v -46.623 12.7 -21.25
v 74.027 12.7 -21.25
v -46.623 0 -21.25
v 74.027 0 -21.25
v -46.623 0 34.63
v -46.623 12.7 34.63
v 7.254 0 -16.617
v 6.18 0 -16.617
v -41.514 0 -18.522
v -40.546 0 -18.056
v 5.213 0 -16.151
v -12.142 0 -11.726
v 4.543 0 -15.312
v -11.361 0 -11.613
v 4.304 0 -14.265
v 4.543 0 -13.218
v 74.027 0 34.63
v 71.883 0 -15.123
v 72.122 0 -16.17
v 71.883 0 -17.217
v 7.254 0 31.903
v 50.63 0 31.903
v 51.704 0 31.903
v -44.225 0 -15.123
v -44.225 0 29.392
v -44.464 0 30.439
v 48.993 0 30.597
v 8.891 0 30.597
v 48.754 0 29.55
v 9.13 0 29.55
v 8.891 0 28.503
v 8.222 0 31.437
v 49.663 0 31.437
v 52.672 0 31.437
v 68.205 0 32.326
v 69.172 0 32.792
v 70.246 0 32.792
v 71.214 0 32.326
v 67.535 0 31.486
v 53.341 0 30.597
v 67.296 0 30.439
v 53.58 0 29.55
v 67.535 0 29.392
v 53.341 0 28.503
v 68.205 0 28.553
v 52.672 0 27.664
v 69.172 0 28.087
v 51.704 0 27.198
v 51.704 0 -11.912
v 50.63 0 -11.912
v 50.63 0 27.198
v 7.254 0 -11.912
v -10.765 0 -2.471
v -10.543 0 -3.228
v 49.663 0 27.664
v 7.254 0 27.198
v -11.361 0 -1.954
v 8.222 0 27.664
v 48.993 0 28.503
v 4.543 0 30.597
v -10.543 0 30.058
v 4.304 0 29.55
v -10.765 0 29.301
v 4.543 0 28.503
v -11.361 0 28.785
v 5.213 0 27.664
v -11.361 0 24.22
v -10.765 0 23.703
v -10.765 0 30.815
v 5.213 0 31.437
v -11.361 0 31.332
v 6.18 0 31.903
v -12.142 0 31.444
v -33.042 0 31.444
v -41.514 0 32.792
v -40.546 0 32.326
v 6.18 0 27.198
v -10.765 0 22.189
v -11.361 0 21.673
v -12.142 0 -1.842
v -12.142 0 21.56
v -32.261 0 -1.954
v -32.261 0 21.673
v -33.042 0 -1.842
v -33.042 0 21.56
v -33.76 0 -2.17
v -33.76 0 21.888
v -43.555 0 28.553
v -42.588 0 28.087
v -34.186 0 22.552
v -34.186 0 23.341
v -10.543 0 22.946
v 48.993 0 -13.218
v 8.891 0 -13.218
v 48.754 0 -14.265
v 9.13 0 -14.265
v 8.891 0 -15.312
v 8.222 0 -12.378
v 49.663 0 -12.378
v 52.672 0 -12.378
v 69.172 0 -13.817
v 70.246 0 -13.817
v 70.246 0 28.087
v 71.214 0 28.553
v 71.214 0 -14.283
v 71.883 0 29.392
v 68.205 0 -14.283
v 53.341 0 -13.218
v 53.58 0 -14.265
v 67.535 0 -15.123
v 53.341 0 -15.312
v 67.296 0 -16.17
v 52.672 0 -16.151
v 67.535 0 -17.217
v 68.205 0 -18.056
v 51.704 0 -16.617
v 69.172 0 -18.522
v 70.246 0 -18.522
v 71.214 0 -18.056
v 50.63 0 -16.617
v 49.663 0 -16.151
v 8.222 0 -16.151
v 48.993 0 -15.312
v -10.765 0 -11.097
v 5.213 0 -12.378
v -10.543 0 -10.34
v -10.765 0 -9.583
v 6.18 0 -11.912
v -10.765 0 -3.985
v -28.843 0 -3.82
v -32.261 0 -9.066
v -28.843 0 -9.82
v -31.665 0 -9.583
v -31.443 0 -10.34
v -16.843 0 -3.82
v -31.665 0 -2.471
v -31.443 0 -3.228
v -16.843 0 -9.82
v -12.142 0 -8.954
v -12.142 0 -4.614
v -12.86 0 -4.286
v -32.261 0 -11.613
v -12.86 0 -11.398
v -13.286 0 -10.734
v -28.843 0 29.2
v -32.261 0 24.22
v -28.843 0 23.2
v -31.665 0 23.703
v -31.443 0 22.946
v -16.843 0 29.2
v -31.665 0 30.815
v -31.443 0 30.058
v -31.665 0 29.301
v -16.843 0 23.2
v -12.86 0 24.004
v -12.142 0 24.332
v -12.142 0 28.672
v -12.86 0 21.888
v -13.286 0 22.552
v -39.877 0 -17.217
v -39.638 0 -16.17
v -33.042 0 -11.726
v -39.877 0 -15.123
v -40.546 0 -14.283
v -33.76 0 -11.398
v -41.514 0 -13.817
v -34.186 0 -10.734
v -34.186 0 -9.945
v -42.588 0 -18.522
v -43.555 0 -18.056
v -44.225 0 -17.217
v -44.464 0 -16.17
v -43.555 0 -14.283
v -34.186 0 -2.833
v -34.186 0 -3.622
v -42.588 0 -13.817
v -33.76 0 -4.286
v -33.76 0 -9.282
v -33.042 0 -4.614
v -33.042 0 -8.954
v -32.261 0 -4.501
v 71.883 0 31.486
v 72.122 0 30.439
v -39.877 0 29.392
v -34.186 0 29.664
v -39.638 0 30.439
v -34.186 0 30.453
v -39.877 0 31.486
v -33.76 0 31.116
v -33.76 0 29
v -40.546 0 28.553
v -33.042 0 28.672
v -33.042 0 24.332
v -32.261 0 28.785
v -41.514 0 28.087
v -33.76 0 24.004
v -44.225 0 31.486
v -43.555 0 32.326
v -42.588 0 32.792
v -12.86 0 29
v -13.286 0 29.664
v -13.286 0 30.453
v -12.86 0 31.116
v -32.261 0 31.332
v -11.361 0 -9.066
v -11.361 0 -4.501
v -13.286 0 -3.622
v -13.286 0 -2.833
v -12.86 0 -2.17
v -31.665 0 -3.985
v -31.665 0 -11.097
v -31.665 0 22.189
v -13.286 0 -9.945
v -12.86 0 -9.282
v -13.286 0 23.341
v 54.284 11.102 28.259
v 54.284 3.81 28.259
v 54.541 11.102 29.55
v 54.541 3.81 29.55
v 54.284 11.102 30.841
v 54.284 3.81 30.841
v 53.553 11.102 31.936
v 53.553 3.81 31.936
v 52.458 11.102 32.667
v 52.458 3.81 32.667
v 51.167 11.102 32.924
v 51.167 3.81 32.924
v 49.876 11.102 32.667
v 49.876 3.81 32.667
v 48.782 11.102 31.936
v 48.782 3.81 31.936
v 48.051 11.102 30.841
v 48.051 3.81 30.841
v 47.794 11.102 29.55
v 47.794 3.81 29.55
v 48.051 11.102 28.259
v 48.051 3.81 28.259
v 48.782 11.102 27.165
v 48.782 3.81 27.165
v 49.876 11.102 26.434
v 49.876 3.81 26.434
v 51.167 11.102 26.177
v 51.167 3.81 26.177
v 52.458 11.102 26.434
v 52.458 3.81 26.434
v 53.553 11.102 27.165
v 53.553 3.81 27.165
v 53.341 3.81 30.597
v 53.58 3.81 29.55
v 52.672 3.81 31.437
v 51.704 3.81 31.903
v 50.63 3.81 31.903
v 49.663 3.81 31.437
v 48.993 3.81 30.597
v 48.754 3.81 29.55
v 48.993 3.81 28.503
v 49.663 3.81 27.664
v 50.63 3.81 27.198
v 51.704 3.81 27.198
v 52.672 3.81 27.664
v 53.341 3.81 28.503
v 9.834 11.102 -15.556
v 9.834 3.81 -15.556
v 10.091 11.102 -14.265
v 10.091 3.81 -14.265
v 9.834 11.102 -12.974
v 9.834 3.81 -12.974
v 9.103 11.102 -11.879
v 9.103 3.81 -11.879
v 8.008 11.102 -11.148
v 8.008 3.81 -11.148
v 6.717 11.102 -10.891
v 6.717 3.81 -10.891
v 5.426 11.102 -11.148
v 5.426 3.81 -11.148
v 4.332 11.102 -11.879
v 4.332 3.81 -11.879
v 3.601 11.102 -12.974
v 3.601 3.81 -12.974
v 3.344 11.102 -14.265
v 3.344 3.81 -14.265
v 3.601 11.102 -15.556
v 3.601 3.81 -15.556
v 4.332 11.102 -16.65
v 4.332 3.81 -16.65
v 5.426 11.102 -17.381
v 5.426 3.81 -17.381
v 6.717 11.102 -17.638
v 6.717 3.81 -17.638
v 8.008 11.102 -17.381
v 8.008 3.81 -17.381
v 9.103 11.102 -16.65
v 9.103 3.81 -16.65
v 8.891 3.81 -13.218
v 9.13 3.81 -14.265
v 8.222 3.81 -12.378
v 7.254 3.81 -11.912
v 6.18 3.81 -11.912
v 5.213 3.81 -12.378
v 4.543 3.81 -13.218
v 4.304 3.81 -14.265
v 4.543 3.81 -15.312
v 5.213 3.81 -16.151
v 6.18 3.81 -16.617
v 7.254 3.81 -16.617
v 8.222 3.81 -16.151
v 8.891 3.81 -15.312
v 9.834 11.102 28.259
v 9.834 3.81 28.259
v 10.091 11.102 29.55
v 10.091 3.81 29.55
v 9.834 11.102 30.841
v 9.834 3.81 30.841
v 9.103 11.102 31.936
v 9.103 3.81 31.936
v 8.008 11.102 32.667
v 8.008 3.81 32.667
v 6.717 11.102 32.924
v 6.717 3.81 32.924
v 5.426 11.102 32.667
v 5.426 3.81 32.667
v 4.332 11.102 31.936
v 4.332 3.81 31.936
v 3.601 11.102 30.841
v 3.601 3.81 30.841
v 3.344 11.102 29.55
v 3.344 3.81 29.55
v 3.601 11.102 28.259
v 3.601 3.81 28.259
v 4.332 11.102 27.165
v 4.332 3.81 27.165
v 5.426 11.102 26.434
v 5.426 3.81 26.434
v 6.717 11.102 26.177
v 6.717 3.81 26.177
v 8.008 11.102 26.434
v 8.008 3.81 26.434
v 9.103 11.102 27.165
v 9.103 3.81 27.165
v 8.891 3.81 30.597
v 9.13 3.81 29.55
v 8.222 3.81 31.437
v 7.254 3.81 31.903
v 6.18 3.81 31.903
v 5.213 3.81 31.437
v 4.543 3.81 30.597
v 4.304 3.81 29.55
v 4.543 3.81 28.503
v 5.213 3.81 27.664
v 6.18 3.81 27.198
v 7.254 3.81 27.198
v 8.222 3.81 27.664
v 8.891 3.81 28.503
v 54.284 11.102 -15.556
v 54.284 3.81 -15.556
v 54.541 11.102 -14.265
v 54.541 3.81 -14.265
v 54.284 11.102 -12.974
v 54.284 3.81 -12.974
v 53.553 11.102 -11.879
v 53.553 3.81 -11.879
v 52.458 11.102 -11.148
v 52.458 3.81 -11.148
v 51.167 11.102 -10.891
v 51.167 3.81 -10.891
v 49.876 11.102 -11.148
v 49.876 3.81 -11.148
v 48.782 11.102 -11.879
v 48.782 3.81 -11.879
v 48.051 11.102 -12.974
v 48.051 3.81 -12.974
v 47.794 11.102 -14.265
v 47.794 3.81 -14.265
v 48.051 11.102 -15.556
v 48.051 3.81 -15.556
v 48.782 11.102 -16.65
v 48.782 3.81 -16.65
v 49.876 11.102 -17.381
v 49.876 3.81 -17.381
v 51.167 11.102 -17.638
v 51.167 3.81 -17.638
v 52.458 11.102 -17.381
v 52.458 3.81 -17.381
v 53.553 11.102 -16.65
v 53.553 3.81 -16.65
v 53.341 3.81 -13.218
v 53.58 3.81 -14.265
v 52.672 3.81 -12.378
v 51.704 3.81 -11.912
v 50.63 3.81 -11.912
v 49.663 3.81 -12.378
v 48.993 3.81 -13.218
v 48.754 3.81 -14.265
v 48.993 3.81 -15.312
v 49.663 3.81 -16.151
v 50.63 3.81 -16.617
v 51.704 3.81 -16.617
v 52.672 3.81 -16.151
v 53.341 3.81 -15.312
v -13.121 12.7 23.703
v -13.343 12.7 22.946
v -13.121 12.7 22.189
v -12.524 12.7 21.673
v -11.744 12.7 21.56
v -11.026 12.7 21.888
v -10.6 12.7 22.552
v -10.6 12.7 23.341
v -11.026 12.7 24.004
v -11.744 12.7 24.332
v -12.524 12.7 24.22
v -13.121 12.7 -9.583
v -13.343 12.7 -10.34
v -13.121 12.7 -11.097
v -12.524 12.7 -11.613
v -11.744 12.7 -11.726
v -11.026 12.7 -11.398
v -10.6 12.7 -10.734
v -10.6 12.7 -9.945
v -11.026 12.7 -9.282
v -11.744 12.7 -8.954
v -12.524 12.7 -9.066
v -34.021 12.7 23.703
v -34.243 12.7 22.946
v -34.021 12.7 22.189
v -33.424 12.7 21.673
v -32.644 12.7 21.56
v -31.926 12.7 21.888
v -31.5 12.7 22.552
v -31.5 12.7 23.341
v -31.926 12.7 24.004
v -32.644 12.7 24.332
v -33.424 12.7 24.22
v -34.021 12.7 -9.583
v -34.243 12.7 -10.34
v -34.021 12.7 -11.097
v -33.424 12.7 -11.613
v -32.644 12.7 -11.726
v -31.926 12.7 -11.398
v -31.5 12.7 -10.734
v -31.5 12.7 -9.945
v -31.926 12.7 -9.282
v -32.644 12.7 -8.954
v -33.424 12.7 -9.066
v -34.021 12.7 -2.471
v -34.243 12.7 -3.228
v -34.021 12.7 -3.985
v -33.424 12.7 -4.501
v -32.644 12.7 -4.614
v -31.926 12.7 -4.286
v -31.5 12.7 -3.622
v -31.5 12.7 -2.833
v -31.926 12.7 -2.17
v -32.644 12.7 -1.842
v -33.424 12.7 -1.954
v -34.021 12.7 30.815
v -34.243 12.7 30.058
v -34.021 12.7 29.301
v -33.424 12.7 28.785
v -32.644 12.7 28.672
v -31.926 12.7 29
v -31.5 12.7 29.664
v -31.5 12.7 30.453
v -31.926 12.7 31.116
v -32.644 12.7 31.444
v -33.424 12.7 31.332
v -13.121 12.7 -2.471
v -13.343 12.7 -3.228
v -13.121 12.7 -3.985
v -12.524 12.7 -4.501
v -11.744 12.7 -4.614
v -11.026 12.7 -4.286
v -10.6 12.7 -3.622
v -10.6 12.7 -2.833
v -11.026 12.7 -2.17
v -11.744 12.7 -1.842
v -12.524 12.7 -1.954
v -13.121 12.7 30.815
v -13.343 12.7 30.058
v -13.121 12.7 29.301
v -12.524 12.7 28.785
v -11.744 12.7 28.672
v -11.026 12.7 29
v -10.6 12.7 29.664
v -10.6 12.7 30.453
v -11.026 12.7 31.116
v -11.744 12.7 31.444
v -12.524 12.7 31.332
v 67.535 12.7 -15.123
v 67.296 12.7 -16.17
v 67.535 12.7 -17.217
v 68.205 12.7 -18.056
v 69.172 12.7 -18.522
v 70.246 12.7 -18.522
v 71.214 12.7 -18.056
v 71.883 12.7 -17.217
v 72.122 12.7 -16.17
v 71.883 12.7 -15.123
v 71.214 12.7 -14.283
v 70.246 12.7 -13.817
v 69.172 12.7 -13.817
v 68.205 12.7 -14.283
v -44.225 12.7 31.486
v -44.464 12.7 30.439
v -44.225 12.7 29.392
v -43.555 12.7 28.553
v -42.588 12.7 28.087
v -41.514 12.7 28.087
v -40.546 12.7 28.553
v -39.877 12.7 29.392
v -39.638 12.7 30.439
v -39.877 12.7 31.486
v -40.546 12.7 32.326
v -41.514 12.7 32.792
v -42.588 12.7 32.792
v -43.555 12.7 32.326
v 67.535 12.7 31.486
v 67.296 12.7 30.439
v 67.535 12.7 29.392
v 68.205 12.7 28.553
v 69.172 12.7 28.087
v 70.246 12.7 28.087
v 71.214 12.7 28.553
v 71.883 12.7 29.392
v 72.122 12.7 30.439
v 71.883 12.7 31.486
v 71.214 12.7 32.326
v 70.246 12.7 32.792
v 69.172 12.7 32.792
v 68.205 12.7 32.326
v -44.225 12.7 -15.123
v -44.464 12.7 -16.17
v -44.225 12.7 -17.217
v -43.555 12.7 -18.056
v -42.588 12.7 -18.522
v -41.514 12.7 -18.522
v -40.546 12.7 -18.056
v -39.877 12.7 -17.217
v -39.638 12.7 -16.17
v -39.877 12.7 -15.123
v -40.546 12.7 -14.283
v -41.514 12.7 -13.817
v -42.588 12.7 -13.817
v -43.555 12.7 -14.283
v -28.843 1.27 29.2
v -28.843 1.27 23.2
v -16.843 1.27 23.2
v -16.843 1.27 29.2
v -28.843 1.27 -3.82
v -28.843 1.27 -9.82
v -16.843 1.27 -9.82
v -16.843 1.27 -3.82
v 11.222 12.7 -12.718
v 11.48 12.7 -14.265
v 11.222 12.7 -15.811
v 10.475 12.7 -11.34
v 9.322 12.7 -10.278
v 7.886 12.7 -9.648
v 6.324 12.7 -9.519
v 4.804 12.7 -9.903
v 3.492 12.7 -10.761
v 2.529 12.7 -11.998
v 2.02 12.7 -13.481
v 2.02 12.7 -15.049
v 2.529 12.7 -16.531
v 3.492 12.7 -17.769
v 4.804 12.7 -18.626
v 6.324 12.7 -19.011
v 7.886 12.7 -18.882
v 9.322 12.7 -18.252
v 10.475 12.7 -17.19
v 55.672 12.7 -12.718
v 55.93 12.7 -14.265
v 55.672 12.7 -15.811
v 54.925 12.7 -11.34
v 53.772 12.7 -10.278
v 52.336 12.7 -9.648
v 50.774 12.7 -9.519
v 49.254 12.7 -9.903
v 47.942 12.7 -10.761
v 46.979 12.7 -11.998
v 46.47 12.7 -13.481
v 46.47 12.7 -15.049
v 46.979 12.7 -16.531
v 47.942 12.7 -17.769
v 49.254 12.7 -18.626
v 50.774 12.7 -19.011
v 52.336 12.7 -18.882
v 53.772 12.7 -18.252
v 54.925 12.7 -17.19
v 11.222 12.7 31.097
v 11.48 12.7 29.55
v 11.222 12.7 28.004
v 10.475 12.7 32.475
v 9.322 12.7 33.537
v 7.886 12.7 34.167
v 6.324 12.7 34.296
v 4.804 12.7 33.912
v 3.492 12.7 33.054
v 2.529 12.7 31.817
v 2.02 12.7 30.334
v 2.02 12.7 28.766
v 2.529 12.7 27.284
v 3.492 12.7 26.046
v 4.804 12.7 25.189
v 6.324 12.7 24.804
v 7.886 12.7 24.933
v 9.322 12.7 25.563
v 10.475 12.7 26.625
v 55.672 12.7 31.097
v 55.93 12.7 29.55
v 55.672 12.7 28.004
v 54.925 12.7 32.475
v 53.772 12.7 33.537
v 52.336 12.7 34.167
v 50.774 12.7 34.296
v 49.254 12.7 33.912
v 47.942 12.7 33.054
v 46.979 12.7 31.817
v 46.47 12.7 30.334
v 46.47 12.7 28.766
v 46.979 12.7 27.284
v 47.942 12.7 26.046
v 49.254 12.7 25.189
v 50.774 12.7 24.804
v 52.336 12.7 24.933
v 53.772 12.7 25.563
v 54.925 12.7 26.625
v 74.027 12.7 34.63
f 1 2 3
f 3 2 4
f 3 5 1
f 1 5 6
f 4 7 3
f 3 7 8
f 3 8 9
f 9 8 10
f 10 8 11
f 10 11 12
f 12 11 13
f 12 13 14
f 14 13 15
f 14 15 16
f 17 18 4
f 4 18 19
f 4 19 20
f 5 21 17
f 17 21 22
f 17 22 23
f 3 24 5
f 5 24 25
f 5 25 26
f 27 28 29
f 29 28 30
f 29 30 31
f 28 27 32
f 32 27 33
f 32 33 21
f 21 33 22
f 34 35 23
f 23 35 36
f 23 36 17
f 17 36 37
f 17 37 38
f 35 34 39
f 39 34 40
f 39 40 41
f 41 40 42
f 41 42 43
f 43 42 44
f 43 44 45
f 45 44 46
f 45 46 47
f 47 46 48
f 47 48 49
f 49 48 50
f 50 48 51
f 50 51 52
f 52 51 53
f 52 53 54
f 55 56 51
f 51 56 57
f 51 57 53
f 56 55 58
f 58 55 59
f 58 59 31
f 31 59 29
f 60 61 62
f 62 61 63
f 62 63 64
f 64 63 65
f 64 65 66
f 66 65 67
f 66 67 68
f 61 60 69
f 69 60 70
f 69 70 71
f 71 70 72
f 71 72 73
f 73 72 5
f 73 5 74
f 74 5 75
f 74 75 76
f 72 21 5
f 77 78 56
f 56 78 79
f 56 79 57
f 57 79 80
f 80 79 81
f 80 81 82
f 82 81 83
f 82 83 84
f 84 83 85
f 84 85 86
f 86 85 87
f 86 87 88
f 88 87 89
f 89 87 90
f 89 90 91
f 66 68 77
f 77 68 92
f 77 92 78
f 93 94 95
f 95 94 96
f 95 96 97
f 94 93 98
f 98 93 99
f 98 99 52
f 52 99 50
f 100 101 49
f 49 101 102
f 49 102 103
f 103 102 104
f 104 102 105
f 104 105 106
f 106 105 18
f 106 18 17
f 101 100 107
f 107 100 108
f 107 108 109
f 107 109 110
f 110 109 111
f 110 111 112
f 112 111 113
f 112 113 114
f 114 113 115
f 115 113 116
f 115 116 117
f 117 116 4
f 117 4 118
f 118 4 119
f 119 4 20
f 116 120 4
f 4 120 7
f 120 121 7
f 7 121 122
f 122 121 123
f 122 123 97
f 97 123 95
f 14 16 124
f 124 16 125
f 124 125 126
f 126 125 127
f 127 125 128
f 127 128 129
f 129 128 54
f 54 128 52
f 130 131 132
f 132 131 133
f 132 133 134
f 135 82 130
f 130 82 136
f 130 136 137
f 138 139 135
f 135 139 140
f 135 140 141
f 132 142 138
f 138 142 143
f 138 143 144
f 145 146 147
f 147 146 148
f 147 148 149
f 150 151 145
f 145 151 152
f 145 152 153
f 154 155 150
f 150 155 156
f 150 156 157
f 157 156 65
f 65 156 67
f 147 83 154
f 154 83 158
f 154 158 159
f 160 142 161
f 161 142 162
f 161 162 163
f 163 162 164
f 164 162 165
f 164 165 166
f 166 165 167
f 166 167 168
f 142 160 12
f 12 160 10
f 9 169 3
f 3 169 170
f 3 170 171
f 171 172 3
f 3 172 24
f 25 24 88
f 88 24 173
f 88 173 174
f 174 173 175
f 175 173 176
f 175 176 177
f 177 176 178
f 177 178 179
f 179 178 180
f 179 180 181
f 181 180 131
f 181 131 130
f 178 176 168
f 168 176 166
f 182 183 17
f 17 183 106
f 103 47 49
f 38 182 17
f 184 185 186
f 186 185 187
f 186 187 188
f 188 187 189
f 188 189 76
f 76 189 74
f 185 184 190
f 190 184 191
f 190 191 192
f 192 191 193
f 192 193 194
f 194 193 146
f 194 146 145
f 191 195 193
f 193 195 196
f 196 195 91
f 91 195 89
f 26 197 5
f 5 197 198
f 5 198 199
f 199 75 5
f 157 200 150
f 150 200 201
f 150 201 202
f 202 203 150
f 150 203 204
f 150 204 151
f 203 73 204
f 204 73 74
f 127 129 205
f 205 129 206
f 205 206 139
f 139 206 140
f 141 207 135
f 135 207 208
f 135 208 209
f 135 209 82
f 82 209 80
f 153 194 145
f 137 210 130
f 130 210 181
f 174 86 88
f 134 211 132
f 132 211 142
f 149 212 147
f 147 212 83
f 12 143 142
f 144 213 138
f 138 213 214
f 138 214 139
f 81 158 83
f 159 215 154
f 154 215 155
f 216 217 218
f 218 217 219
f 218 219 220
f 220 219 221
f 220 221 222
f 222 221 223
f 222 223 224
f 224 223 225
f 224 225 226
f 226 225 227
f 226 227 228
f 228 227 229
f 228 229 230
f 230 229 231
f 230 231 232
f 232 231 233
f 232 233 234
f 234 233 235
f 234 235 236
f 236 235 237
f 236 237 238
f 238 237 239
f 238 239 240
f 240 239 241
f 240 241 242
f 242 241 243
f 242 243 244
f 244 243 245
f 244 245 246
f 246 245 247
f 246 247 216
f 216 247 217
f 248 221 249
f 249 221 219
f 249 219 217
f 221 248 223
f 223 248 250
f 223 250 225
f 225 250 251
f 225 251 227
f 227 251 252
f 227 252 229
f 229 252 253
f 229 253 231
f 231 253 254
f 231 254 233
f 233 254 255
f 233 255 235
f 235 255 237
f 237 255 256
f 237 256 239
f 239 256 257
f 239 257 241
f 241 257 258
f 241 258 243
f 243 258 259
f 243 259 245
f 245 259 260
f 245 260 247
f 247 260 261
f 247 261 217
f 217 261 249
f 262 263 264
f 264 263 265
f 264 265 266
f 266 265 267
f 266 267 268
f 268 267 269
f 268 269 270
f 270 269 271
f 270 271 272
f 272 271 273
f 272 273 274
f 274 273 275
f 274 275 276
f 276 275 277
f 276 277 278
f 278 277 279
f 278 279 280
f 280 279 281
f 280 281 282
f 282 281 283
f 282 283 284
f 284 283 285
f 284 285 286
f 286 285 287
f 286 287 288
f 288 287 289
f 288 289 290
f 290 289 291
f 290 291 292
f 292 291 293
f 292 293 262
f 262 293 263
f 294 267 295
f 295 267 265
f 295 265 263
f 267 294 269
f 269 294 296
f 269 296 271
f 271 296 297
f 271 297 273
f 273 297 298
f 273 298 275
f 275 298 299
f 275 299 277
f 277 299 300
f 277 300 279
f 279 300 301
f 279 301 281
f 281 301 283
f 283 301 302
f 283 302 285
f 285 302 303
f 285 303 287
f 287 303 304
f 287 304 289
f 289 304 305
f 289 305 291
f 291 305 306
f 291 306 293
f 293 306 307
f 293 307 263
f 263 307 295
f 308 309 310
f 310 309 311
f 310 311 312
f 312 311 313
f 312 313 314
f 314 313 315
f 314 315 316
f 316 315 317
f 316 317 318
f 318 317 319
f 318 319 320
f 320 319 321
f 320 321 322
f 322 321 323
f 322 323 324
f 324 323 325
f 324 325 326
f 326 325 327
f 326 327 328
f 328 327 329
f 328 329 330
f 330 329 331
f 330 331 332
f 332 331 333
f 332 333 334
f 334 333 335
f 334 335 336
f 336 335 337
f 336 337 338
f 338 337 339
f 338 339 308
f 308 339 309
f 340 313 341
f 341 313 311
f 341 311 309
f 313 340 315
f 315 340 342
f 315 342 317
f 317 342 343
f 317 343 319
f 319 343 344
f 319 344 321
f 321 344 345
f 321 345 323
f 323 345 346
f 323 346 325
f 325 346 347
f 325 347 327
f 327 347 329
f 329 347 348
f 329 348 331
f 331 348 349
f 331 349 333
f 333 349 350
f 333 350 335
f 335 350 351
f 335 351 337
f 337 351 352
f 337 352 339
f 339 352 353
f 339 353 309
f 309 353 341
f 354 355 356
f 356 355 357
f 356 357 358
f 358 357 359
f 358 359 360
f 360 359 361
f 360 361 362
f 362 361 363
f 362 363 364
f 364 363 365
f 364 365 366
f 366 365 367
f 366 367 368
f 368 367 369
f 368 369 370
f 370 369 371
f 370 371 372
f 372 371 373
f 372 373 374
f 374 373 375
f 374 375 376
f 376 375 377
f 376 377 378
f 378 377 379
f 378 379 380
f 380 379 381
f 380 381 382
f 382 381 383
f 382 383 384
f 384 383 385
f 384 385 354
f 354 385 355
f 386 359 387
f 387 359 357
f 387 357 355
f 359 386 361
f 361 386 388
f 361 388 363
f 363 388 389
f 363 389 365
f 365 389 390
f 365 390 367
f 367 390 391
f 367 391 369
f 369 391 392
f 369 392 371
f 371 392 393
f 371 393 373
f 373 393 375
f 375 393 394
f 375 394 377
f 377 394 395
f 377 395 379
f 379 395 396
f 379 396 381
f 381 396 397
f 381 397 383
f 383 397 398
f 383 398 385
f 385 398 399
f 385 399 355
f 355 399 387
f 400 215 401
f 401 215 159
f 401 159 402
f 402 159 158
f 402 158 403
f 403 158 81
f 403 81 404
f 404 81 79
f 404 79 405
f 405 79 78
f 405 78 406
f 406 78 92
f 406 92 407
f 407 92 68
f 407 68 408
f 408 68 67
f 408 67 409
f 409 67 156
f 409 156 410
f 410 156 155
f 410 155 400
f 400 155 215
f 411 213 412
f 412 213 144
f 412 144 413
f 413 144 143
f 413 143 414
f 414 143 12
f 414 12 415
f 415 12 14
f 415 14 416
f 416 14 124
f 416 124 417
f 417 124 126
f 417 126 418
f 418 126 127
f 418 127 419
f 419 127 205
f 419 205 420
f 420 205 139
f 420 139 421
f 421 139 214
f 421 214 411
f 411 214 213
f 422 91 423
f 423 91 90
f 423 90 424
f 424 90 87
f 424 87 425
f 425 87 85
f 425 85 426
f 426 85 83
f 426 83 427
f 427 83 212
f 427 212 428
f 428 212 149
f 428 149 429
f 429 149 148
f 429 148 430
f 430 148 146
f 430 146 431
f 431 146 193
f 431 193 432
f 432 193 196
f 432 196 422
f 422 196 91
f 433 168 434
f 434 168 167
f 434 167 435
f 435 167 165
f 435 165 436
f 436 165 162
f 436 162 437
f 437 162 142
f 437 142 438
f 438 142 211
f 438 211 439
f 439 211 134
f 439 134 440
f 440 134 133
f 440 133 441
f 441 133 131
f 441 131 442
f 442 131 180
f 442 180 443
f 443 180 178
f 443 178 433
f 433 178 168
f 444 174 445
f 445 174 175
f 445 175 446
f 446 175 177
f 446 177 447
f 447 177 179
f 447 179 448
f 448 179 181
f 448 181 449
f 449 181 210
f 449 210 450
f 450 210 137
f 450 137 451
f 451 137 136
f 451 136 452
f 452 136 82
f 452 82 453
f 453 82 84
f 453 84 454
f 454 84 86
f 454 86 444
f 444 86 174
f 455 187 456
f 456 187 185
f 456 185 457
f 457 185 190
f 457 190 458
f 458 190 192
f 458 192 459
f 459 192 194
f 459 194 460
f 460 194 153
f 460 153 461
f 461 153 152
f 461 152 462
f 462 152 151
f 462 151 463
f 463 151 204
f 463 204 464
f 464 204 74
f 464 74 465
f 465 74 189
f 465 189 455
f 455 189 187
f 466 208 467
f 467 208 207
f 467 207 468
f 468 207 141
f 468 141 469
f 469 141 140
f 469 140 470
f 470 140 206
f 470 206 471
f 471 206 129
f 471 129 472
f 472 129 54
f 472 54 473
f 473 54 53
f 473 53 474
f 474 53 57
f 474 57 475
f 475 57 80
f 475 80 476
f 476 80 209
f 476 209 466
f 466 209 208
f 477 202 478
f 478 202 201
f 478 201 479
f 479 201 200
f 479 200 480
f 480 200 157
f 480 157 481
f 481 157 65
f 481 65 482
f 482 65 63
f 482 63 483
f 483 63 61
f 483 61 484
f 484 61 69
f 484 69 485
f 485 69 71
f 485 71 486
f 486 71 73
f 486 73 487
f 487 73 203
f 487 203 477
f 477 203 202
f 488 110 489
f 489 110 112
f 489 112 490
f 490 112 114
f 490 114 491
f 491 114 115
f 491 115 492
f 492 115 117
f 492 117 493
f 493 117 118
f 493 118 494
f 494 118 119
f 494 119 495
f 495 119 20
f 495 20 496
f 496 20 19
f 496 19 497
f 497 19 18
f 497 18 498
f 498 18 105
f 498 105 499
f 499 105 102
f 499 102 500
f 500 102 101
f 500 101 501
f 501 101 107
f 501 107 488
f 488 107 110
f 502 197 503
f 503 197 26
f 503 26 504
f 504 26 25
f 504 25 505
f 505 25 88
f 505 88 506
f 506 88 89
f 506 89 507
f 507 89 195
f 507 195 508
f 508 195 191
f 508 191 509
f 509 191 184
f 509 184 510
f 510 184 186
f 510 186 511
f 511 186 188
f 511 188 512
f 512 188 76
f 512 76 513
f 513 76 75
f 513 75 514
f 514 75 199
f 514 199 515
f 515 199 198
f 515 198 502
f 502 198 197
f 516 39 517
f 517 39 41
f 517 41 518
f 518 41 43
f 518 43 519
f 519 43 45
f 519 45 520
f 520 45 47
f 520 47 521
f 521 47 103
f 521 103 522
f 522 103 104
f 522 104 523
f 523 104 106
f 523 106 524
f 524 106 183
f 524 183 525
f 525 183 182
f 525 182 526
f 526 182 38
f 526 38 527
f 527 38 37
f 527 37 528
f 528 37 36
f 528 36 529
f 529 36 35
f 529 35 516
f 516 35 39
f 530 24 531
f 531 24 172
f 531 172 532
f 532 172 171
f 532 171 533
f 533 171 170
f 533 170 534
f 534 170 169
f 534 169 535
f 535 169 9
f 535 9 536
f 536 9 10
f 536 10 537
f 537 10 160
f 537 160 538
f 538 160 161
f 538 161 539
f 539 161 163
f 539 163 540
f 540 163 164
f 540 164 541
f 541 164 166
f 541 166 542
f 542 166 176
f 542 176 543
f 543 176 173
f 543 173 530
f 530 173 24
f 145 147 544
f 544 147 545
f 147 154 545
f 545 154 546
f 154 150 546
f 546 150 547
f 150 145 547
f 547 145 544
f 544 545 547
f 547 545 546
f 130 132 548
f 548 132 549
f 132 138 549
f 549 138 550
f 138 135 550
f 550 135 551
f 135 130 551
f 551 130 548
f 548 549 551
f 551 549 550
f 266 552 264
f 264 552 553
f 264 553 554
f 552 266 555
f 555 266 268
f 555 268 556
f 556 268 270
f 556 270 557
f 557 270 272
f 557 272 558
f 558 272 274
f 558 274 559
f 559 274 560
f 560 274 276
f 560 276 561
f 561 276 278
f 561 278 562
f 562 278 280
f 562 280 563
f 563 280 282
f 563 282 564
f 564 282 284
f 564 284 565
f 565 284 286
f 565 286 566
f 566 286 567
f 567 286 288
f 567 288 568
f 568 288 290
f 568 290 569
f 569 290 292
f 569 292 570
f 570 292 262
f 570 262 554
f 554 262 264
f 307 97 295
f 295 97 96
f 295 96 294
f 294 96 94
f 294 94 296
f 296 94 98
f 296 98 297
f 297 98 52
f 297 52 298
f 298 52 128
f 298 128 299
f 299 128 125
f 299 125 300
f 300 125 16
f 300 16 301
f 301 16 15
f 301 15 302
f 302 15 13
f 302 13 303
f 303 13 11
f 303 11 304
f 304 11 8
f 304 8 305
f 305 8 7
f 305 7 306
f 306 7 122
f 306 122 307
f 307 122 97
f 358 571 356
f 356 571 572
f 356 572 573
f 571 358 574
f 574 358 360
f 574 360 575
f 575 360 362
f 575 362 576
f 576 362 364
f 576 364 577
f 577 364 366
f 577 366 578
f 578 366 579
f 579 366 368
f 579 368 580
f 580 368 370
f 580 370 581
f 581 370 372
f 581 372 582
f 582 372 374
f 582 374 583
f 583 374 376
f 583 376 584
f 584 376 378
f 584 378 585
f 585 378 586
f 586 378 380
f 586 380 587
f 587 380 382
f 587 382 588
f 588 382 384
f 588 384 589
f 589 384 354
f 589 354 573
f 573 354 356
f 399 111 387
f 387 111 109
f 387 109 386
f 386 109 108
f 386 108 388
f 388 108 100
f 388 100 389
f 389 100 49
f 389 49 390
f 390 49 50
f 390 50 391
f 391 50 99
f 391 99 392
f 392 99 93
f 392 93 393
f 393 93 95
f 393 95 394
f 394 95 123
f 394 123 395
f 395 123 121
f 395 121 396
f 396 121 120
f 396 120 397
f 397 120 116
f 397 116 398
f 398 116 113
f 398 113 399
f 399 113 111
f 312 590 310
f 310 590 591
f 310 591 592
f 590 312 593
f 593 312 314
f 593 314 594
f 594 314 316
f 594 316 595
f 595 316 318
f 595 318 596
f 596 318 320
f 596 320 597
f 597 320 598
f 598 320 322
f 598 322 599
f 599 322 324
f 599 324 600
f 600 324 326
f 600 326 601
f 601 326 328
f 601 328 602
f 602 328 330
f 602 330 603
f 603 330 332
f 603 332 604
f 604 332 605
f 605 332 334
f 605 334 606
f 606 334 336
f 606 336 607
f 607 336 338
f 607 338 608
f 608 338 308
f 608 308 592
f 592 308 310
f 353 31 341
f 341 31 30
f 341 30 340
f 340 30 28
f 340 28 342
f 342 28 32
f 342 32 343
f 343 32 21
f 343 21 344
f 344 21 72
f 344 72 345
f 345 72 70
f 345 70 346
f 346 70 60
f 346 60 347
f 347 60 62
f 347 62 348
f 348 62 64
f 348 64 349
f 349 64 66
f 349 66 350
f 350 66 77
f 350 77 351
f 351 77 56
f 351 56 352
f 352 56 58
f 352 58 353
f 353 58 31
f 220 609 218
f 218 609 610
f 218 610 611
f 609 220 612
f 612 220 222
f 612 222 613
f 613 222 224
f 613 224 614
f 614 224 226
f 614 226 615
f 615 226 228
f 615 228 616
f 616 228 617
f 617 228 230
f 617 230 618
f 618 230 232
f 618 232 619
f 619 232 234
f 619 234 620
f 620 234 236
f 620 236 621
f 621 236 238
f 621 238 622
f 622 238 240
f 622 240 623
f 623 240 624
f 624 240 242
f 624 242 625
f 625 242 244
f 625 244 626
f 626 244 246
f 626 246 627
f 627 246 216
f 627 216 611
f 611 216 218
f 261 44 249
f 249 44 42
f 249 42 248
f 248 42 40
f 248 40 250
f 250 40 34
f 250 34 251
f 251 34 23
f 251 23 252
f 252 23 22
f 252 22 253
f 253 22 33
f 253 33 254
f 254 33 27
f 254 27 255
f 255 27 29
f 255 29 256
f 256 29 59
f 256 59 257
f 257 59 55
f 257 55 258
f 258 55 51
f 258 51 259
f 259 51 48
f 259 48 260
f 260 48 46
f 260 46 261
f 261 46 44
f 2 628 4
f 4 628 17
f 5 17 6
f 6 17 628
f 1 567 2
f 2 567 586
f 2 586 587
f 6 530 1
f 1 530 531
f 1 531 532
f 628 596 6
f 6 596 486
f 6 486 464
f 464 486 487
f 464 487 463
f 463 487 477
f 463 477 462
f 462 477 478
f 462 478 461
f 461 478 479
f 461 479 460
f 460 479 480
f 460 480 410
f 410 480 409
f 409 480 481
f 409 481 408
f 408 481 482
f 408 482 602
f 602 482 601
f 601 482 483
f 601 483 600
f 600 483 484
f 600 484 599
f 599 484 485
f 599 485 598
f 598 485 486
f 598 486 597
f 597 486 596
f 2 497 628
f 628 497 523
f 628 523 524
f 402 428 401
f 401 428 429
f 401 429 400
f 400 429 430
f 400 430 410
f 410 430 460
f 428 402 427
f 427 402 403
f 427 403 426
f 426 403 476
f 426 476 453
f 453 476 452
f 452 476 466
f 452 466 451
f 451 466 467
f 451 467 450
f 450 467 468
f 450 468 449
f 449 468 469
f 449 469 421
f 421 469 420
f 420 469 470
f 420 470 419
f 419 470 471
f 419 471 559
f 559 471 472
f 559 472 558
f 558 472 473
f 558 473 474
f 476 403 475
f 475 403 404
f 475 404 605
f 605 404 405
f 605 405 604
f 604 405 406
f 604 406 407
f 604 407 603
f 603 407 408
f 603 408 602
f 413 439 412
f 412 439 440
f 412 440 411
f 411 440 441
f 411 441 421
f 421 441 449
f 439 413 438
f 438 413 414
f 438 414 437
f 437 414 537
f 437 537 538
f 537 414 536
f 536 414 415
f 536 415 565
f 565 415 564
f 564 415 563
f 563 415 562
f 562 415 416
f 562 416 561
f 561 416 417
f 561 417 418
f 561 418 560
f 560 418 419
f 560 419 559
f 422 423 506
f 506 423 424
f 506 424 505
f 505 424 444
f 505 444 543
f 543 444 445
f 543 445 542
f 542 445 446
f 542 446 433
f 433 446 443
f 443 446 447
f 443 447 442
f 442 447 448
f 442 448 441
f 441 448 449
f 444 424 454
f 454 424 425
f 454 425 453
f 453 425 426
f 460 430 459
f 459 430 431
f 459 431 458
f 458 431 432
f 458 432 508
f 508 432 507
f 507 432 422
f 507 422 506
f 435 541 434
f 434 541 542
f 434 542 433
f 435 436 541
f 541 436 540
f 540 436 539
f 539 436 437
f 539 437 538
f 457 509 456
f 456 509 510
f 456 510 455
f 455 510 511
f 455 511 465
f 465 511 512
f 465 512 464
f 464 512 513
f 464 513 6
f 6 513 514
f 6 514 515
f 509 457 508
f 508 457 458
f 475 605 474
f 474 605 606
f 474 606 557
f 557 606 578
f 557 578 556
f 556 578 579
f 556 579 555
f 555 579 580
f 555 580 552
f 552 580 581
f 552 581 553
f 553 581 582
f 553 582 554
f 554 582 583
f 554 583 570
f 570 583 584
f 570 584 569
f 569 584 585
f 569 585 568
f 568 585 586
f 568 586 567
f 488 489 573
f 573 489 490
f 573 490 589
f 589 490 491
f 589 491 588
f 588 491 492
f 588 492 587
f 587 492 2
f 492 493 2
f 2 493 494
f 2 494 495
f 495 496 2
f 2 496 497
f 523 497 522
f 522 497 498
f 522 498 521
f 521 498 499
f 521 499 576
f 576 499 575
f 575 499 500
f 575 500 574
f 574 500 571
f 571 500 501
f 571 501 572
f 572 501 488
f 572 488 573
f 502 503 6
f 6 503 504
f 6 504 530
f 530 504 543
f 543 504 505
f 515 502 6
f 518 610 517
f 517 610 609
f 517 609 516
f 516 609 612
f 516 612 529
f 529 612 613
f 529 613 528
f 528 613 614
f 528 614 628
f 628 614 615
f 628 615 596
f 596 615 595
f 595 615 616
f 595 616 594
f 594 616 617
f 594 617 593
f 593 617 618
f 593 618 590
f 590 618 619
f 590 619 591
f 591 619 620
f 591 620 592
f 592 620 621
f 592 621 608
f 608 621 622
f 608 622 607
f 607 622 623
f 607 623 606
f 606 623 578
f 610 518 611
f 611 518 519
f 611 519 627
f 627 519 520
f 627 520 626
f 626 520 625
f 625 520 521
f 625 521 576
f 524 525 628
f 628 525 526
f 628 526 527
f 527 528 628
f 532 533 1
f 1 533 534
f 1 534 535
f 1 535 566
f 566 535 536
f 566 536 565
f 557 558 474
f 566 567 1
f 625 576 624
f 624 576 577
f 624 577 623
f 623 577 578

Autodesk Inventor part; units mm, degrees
ref_plane "YZ Plane" through (0, 0, 0) normal (1, 0, 0) x (0, 1, 0)
ref_plane "XZ Plane" through (0, 0, 0) normal (0, 1, 0) x (-1, 0, 0)
ref_plane "XY Plane" through (0, 0, 0) normal (0, 0, 1) x (1, 0, 0)
sketch "Sketch1" plane through (0, 0, 0) normal (0, 1, 0) x (-1, 0, 0)
  line L0 (46.6228, 34.6302) -> (-74.0272, 34.6302)
  line L1 (-74.0272, 34.6302) -> (-74.0272, -54.2698)
  line L2 (-74.0272, -54.2698) -> (46.6228, -54.2698)
  line L3 (46.6228, -54.2698) -> (46.6228, 34.6302)
  point P0 (0, 0)
  dimension "d0" = 120.65
  dimension "d1" = 88.9
extrude "Extrusion1" add sketch "Sketch1" along normal blind 12.7
sketch "Sketch2" plane through (0, 12.7, 0) normal (0, 1, 0) x (1, 0, 0)
  line L0 (-46.6228, -34.6302) -> (74.0272, -34.6302) projected
  line L1 (-46.6228, 54.2698) -> (-46.6228, -34.6302) projected
  point P0 (0, 0)
  point P1 (6.7172, -29.5502)
  point P2 (51.1672, -29.5502)
  dimension "d4" = 0
  dimension "d5" = 5.08
  dimension "d6" = 53.34
  dimension "d7" = 44.45
hole "Hole1" at (6.7172, 12.7, 29.5502) at (51.1672, 12.7, 29.5502) direction (0, -1, 0) diameter 4.826 depth 25.4 tip angle 118 countersink diameter 9.525 countersink angle 82
sketch "Sketch6" plane through (0, 0, 0) normal (0, -1, 0) x (1, 0, 0)
  line L0 (-46.6228, 34.6302) -> (74.0272, 34.6302) projected
  line L1 (-46.6228, -54.2698) -> (-46.6228, 34.6302) projected
  line L2 (74.0272, -54.2698) -> (-46.6228, -54.2698) projected
  point P0 (0, 0)
  point P1 (69.7092, -16.1698)
  point P2 (-42.0508, -16.1698)
  point P3 (-42.0508, 30.4392)
  point P4 (69.7092, 30.4392)
  dimension "d43" = 0
  dimension "d44" = 0
  dimension "d46" = 111.76
  dimension "d47" = 0
  dimension "d48" = 0
  dimension "d50" = 4.191
  dimension "d51" = 4.572
  dimension "d91" = 38.1
hole "Hole4" at (69.7092, 0, -16.1698) at (-42.0508, 0, -16.1698) at (-42.0508, 0, 30.4392) at (69.7092, 0, 30.4392) direction (0, 1, 0) diameter 4.8 depth 25.4 tip angle 118
sketch "Sketch10" plane through (0, 12.7, 0) normal (0, 1, 0) x (1, 0, 0)
  circle A0 centre (51.1672, -29.5502) radius 2.413 projected
  circle A1 centre (6.7172, -29.5502) radius 2.413 projected
  line L0 (74.0272, 54.2698) -> (-46.6228, 54.2698) projected
  point P0 (0, 0)
  point P1 (6.7172, 14.2648)
  point P2 (51.1672, 14.2648)
  point P3 (66.6772, 28.8698)
  point P4 (-45.6228, 28.8698)
  point P5 (-46.6228, 54.2698)
  dimension "d80" = 0
  dimension "d81" = 0
  dimension "d82" = 0
  dimension "d144" = 43.815
hole "Hole7" at (6.7172, 12.7, -14.2648) at (51.1672, 12.7, -14.2648) direction (0, -1, 0) diameter 4.826 end through all countersink diameter 9.525 countersink angle 82
sketch "Sketch11" plane through (0, 0, 0) normal (0, -1, 0) x (1, 0, 0)
  line L0 (-28.8428, 29.2002) -> (-16.8428, 29.2002)
  line L1 (-16.8428, 29.2002) -> (-16.8428, 23.2002)
  line L2 (-16.8428, 23.2002) -> (-28.8428, 23.2002)
  line L3 (-28.8428, 23.2002) -> (-28.8428, 29.2002)
  line L4 (-28.8428, -3.8198) -> (-16.8428, -3.8198)
  line L5 (-16.8428, -3.8198) -> (-16.8428, -9.8198)
  line L6 (-16.8428, -9.8198) -> (-28.8428, -9.8198)
  line L7 (-28.8428, -9.8198) -> (-28.8428, -3.8198)
  line L8 (-28.8428, 23.5502) -> (-28.8428, 29.5502) projected
  line L9 (-16.8428, 29.5502) -> (-16.8428, 23.5502) projected
  line L10 (74.0272, -54.2698) -> (-46.6228, -54.2698) projected
  point P0 (0, 0)
  dimension "d93" = 0
  dimension "d94" = 0
  dimension "d95" = 0
  dimension "d96" = 0
  dimension "d97" = 6
  dimension "d98" = 6
  dimension "d99" = 44.45
  dimension "d100" = 77.47
extrude "Extrusion4" cut sketch "Sketch11" against normal blind 1.27
sketch "Sketch12" plane through (0, 0, 0) normal (0, -1, 0) x (1, 0, 0)
  circle A0 centre (-42.0508, 30.4392) radius 2.4 projected
  circle A1 centre (69.7092, 30.4392) radius 2.4 projected
  circle A2 centre (69.7092, -16.1698) radius 2.4 projected
  circle A3 centre (-42.0508, -16.1698) radius 2.4 projected
  point P0 (0, 0)
hole "Hole8" at (-42.0508, 0, 30.4392) at (69.7092, 0, 30.4392) at (69.7092, 0, -16.1698) at (-42.0508, 0, -16.1698) direction (0, 1, 0) diameter 4.826 end through all
sketch "Sketch13" plane through (0, 0, 0) normal (0, -1, 0) x (1, 0, 0)
  circle A0 centre (-32.8428, -42.0898) radius 1.4 projected
  circle A1 centre (-32.8428, -49.1898) radius 1.4 projected
  line L0 (-46.6228, 34.6302) -> (74.0272, 34.6302) projected
  circle A2 centre (-11.9428, -42.0898) radius 1.4 projected
  point P0 (0, 0)
  point P1 (-32.8428, -10.3398)
  point P2 (-32.8428, -3.2278)
  point P3 (-32.8428, 22.9462)
  point P4 (-32.8428, 30.0582)
  point P5 (-39.7887, 34.6302)
  point P6 (67.4471, 34.6302)
  point P7 (-11.9428, -10.3398)
  point P8 (-11.9428, -3.2278)
  point P9 (-11.9428, 22.9462)
  point P10 (-11.9428, 30.0582)
  dimension "d110" = 0
  dimension "d111" = 0
  dimension "d112" = 0
  dimension "d113" = 7.112
  dimension "d114" = 7.112
  dimension "d115" = 31.75
  dimension "d116" = 4.572
  dimension "d117" = 0
  dimension "d118" = 0
  dimension "d119" = 0
  dimension "d120" = 0
  dimension "d121" = 0
  dimension "d122" = 0
  dimension "d123" = 0
  dimension "d124" = 0
hole "Hole9" at (-32.8428, 0, -10.3398) at (-32.8428, 0, -3.2278) at (-32.8428, 0, 22.9462) at (-32.8428, 0, 30.0582) at (-11.9428, 0, -10.3398) at (-11.9428, 0, -3.2278) at (-11.9428, 0, 22.9462) at (-11.9428, 0, 30.0582) direction (0, 1, 0) diameter 2.8 end through all
sketch "Sketch15" plane through (0, 12.7, 0) normal (0, 1, 0) x (1, 0, 0)
  circle A0 centre (6.7172, 14.2648) radius 2.413 projected
  circle A1 centre (51.1672, 14.2648) radius 2.413 projected
  circle A2 centre (6.7172, -29.5502) radius 2.413 projected
  circle A3 centre (51.1672, -29.5502) radius 2.413 projected
  circle A4 centre (6.7172, 14.2648) radius 3.3734
  circle A5 centre (6.7172, -29.5502) radius 3.3734
  circle A6 centre (51.1672, -29.5502) radius 3.3734
  circle A7 centre (51.1672, 14.2648) radius 3.3734
  point P0 (0, 0)
  dimension "d138" = 6.7469
  dimension "d139" = 6.7469
  dimension "d140" = 6.7469
  dimension "d141" = 6.7469
extrude "Extrusion6" cut sketch "Sketch15" against normal blind 8.89
sketch "Sketch16" plane through (0, 0, 0) normal (0, -1, 0) x (1, 0, 0)
  line L0 (-64.483, -21.2498) -> (91.0848, -21.2498)
  line L1 (91.0848, -21.2498) -> (91.0848, -72.9236)
  line L2 (91.0848, -72.9236) -> (-64.483, -72.9236)
  line L3 (-64.483, -72.9236) -> (-64.483, -21.2498)
  line L4 (74.0272, -54.2698) -> (-46.6228, -54.2698) projected
  point P0 (0, 0)
  dimension "d145" = 33.02
extrude "Extrusion7" cut sketch "Sketch16" against normal blind 25.4
equation "\"d52\" = LegoMainHole"
equation "\"d125\" = CanConHoleDiam"
equation "\"LegoMainHole\" = 4.8"
equation "\"TalonSRXWidth\" = 31.75"
equation "\"TalonSRXFromSide\" = 15.875"
equation "\"TalonSRXBetweenHoles\" = 50.8"
equation "\"CanConPinWidth\" = 6"
equation "\"CanConPinLength\" = 12"
equation "\"CanConBetweenSideHoles\" = 20.9"
equation "\"CanConBetweenTopHoles\" = 7.1"
equation "\"CanConHoleDiam\" = 2.8"
equation "\"CanConHoleFromTopPin\" = 4"
properties part number "OneSparkMaxPlate"
